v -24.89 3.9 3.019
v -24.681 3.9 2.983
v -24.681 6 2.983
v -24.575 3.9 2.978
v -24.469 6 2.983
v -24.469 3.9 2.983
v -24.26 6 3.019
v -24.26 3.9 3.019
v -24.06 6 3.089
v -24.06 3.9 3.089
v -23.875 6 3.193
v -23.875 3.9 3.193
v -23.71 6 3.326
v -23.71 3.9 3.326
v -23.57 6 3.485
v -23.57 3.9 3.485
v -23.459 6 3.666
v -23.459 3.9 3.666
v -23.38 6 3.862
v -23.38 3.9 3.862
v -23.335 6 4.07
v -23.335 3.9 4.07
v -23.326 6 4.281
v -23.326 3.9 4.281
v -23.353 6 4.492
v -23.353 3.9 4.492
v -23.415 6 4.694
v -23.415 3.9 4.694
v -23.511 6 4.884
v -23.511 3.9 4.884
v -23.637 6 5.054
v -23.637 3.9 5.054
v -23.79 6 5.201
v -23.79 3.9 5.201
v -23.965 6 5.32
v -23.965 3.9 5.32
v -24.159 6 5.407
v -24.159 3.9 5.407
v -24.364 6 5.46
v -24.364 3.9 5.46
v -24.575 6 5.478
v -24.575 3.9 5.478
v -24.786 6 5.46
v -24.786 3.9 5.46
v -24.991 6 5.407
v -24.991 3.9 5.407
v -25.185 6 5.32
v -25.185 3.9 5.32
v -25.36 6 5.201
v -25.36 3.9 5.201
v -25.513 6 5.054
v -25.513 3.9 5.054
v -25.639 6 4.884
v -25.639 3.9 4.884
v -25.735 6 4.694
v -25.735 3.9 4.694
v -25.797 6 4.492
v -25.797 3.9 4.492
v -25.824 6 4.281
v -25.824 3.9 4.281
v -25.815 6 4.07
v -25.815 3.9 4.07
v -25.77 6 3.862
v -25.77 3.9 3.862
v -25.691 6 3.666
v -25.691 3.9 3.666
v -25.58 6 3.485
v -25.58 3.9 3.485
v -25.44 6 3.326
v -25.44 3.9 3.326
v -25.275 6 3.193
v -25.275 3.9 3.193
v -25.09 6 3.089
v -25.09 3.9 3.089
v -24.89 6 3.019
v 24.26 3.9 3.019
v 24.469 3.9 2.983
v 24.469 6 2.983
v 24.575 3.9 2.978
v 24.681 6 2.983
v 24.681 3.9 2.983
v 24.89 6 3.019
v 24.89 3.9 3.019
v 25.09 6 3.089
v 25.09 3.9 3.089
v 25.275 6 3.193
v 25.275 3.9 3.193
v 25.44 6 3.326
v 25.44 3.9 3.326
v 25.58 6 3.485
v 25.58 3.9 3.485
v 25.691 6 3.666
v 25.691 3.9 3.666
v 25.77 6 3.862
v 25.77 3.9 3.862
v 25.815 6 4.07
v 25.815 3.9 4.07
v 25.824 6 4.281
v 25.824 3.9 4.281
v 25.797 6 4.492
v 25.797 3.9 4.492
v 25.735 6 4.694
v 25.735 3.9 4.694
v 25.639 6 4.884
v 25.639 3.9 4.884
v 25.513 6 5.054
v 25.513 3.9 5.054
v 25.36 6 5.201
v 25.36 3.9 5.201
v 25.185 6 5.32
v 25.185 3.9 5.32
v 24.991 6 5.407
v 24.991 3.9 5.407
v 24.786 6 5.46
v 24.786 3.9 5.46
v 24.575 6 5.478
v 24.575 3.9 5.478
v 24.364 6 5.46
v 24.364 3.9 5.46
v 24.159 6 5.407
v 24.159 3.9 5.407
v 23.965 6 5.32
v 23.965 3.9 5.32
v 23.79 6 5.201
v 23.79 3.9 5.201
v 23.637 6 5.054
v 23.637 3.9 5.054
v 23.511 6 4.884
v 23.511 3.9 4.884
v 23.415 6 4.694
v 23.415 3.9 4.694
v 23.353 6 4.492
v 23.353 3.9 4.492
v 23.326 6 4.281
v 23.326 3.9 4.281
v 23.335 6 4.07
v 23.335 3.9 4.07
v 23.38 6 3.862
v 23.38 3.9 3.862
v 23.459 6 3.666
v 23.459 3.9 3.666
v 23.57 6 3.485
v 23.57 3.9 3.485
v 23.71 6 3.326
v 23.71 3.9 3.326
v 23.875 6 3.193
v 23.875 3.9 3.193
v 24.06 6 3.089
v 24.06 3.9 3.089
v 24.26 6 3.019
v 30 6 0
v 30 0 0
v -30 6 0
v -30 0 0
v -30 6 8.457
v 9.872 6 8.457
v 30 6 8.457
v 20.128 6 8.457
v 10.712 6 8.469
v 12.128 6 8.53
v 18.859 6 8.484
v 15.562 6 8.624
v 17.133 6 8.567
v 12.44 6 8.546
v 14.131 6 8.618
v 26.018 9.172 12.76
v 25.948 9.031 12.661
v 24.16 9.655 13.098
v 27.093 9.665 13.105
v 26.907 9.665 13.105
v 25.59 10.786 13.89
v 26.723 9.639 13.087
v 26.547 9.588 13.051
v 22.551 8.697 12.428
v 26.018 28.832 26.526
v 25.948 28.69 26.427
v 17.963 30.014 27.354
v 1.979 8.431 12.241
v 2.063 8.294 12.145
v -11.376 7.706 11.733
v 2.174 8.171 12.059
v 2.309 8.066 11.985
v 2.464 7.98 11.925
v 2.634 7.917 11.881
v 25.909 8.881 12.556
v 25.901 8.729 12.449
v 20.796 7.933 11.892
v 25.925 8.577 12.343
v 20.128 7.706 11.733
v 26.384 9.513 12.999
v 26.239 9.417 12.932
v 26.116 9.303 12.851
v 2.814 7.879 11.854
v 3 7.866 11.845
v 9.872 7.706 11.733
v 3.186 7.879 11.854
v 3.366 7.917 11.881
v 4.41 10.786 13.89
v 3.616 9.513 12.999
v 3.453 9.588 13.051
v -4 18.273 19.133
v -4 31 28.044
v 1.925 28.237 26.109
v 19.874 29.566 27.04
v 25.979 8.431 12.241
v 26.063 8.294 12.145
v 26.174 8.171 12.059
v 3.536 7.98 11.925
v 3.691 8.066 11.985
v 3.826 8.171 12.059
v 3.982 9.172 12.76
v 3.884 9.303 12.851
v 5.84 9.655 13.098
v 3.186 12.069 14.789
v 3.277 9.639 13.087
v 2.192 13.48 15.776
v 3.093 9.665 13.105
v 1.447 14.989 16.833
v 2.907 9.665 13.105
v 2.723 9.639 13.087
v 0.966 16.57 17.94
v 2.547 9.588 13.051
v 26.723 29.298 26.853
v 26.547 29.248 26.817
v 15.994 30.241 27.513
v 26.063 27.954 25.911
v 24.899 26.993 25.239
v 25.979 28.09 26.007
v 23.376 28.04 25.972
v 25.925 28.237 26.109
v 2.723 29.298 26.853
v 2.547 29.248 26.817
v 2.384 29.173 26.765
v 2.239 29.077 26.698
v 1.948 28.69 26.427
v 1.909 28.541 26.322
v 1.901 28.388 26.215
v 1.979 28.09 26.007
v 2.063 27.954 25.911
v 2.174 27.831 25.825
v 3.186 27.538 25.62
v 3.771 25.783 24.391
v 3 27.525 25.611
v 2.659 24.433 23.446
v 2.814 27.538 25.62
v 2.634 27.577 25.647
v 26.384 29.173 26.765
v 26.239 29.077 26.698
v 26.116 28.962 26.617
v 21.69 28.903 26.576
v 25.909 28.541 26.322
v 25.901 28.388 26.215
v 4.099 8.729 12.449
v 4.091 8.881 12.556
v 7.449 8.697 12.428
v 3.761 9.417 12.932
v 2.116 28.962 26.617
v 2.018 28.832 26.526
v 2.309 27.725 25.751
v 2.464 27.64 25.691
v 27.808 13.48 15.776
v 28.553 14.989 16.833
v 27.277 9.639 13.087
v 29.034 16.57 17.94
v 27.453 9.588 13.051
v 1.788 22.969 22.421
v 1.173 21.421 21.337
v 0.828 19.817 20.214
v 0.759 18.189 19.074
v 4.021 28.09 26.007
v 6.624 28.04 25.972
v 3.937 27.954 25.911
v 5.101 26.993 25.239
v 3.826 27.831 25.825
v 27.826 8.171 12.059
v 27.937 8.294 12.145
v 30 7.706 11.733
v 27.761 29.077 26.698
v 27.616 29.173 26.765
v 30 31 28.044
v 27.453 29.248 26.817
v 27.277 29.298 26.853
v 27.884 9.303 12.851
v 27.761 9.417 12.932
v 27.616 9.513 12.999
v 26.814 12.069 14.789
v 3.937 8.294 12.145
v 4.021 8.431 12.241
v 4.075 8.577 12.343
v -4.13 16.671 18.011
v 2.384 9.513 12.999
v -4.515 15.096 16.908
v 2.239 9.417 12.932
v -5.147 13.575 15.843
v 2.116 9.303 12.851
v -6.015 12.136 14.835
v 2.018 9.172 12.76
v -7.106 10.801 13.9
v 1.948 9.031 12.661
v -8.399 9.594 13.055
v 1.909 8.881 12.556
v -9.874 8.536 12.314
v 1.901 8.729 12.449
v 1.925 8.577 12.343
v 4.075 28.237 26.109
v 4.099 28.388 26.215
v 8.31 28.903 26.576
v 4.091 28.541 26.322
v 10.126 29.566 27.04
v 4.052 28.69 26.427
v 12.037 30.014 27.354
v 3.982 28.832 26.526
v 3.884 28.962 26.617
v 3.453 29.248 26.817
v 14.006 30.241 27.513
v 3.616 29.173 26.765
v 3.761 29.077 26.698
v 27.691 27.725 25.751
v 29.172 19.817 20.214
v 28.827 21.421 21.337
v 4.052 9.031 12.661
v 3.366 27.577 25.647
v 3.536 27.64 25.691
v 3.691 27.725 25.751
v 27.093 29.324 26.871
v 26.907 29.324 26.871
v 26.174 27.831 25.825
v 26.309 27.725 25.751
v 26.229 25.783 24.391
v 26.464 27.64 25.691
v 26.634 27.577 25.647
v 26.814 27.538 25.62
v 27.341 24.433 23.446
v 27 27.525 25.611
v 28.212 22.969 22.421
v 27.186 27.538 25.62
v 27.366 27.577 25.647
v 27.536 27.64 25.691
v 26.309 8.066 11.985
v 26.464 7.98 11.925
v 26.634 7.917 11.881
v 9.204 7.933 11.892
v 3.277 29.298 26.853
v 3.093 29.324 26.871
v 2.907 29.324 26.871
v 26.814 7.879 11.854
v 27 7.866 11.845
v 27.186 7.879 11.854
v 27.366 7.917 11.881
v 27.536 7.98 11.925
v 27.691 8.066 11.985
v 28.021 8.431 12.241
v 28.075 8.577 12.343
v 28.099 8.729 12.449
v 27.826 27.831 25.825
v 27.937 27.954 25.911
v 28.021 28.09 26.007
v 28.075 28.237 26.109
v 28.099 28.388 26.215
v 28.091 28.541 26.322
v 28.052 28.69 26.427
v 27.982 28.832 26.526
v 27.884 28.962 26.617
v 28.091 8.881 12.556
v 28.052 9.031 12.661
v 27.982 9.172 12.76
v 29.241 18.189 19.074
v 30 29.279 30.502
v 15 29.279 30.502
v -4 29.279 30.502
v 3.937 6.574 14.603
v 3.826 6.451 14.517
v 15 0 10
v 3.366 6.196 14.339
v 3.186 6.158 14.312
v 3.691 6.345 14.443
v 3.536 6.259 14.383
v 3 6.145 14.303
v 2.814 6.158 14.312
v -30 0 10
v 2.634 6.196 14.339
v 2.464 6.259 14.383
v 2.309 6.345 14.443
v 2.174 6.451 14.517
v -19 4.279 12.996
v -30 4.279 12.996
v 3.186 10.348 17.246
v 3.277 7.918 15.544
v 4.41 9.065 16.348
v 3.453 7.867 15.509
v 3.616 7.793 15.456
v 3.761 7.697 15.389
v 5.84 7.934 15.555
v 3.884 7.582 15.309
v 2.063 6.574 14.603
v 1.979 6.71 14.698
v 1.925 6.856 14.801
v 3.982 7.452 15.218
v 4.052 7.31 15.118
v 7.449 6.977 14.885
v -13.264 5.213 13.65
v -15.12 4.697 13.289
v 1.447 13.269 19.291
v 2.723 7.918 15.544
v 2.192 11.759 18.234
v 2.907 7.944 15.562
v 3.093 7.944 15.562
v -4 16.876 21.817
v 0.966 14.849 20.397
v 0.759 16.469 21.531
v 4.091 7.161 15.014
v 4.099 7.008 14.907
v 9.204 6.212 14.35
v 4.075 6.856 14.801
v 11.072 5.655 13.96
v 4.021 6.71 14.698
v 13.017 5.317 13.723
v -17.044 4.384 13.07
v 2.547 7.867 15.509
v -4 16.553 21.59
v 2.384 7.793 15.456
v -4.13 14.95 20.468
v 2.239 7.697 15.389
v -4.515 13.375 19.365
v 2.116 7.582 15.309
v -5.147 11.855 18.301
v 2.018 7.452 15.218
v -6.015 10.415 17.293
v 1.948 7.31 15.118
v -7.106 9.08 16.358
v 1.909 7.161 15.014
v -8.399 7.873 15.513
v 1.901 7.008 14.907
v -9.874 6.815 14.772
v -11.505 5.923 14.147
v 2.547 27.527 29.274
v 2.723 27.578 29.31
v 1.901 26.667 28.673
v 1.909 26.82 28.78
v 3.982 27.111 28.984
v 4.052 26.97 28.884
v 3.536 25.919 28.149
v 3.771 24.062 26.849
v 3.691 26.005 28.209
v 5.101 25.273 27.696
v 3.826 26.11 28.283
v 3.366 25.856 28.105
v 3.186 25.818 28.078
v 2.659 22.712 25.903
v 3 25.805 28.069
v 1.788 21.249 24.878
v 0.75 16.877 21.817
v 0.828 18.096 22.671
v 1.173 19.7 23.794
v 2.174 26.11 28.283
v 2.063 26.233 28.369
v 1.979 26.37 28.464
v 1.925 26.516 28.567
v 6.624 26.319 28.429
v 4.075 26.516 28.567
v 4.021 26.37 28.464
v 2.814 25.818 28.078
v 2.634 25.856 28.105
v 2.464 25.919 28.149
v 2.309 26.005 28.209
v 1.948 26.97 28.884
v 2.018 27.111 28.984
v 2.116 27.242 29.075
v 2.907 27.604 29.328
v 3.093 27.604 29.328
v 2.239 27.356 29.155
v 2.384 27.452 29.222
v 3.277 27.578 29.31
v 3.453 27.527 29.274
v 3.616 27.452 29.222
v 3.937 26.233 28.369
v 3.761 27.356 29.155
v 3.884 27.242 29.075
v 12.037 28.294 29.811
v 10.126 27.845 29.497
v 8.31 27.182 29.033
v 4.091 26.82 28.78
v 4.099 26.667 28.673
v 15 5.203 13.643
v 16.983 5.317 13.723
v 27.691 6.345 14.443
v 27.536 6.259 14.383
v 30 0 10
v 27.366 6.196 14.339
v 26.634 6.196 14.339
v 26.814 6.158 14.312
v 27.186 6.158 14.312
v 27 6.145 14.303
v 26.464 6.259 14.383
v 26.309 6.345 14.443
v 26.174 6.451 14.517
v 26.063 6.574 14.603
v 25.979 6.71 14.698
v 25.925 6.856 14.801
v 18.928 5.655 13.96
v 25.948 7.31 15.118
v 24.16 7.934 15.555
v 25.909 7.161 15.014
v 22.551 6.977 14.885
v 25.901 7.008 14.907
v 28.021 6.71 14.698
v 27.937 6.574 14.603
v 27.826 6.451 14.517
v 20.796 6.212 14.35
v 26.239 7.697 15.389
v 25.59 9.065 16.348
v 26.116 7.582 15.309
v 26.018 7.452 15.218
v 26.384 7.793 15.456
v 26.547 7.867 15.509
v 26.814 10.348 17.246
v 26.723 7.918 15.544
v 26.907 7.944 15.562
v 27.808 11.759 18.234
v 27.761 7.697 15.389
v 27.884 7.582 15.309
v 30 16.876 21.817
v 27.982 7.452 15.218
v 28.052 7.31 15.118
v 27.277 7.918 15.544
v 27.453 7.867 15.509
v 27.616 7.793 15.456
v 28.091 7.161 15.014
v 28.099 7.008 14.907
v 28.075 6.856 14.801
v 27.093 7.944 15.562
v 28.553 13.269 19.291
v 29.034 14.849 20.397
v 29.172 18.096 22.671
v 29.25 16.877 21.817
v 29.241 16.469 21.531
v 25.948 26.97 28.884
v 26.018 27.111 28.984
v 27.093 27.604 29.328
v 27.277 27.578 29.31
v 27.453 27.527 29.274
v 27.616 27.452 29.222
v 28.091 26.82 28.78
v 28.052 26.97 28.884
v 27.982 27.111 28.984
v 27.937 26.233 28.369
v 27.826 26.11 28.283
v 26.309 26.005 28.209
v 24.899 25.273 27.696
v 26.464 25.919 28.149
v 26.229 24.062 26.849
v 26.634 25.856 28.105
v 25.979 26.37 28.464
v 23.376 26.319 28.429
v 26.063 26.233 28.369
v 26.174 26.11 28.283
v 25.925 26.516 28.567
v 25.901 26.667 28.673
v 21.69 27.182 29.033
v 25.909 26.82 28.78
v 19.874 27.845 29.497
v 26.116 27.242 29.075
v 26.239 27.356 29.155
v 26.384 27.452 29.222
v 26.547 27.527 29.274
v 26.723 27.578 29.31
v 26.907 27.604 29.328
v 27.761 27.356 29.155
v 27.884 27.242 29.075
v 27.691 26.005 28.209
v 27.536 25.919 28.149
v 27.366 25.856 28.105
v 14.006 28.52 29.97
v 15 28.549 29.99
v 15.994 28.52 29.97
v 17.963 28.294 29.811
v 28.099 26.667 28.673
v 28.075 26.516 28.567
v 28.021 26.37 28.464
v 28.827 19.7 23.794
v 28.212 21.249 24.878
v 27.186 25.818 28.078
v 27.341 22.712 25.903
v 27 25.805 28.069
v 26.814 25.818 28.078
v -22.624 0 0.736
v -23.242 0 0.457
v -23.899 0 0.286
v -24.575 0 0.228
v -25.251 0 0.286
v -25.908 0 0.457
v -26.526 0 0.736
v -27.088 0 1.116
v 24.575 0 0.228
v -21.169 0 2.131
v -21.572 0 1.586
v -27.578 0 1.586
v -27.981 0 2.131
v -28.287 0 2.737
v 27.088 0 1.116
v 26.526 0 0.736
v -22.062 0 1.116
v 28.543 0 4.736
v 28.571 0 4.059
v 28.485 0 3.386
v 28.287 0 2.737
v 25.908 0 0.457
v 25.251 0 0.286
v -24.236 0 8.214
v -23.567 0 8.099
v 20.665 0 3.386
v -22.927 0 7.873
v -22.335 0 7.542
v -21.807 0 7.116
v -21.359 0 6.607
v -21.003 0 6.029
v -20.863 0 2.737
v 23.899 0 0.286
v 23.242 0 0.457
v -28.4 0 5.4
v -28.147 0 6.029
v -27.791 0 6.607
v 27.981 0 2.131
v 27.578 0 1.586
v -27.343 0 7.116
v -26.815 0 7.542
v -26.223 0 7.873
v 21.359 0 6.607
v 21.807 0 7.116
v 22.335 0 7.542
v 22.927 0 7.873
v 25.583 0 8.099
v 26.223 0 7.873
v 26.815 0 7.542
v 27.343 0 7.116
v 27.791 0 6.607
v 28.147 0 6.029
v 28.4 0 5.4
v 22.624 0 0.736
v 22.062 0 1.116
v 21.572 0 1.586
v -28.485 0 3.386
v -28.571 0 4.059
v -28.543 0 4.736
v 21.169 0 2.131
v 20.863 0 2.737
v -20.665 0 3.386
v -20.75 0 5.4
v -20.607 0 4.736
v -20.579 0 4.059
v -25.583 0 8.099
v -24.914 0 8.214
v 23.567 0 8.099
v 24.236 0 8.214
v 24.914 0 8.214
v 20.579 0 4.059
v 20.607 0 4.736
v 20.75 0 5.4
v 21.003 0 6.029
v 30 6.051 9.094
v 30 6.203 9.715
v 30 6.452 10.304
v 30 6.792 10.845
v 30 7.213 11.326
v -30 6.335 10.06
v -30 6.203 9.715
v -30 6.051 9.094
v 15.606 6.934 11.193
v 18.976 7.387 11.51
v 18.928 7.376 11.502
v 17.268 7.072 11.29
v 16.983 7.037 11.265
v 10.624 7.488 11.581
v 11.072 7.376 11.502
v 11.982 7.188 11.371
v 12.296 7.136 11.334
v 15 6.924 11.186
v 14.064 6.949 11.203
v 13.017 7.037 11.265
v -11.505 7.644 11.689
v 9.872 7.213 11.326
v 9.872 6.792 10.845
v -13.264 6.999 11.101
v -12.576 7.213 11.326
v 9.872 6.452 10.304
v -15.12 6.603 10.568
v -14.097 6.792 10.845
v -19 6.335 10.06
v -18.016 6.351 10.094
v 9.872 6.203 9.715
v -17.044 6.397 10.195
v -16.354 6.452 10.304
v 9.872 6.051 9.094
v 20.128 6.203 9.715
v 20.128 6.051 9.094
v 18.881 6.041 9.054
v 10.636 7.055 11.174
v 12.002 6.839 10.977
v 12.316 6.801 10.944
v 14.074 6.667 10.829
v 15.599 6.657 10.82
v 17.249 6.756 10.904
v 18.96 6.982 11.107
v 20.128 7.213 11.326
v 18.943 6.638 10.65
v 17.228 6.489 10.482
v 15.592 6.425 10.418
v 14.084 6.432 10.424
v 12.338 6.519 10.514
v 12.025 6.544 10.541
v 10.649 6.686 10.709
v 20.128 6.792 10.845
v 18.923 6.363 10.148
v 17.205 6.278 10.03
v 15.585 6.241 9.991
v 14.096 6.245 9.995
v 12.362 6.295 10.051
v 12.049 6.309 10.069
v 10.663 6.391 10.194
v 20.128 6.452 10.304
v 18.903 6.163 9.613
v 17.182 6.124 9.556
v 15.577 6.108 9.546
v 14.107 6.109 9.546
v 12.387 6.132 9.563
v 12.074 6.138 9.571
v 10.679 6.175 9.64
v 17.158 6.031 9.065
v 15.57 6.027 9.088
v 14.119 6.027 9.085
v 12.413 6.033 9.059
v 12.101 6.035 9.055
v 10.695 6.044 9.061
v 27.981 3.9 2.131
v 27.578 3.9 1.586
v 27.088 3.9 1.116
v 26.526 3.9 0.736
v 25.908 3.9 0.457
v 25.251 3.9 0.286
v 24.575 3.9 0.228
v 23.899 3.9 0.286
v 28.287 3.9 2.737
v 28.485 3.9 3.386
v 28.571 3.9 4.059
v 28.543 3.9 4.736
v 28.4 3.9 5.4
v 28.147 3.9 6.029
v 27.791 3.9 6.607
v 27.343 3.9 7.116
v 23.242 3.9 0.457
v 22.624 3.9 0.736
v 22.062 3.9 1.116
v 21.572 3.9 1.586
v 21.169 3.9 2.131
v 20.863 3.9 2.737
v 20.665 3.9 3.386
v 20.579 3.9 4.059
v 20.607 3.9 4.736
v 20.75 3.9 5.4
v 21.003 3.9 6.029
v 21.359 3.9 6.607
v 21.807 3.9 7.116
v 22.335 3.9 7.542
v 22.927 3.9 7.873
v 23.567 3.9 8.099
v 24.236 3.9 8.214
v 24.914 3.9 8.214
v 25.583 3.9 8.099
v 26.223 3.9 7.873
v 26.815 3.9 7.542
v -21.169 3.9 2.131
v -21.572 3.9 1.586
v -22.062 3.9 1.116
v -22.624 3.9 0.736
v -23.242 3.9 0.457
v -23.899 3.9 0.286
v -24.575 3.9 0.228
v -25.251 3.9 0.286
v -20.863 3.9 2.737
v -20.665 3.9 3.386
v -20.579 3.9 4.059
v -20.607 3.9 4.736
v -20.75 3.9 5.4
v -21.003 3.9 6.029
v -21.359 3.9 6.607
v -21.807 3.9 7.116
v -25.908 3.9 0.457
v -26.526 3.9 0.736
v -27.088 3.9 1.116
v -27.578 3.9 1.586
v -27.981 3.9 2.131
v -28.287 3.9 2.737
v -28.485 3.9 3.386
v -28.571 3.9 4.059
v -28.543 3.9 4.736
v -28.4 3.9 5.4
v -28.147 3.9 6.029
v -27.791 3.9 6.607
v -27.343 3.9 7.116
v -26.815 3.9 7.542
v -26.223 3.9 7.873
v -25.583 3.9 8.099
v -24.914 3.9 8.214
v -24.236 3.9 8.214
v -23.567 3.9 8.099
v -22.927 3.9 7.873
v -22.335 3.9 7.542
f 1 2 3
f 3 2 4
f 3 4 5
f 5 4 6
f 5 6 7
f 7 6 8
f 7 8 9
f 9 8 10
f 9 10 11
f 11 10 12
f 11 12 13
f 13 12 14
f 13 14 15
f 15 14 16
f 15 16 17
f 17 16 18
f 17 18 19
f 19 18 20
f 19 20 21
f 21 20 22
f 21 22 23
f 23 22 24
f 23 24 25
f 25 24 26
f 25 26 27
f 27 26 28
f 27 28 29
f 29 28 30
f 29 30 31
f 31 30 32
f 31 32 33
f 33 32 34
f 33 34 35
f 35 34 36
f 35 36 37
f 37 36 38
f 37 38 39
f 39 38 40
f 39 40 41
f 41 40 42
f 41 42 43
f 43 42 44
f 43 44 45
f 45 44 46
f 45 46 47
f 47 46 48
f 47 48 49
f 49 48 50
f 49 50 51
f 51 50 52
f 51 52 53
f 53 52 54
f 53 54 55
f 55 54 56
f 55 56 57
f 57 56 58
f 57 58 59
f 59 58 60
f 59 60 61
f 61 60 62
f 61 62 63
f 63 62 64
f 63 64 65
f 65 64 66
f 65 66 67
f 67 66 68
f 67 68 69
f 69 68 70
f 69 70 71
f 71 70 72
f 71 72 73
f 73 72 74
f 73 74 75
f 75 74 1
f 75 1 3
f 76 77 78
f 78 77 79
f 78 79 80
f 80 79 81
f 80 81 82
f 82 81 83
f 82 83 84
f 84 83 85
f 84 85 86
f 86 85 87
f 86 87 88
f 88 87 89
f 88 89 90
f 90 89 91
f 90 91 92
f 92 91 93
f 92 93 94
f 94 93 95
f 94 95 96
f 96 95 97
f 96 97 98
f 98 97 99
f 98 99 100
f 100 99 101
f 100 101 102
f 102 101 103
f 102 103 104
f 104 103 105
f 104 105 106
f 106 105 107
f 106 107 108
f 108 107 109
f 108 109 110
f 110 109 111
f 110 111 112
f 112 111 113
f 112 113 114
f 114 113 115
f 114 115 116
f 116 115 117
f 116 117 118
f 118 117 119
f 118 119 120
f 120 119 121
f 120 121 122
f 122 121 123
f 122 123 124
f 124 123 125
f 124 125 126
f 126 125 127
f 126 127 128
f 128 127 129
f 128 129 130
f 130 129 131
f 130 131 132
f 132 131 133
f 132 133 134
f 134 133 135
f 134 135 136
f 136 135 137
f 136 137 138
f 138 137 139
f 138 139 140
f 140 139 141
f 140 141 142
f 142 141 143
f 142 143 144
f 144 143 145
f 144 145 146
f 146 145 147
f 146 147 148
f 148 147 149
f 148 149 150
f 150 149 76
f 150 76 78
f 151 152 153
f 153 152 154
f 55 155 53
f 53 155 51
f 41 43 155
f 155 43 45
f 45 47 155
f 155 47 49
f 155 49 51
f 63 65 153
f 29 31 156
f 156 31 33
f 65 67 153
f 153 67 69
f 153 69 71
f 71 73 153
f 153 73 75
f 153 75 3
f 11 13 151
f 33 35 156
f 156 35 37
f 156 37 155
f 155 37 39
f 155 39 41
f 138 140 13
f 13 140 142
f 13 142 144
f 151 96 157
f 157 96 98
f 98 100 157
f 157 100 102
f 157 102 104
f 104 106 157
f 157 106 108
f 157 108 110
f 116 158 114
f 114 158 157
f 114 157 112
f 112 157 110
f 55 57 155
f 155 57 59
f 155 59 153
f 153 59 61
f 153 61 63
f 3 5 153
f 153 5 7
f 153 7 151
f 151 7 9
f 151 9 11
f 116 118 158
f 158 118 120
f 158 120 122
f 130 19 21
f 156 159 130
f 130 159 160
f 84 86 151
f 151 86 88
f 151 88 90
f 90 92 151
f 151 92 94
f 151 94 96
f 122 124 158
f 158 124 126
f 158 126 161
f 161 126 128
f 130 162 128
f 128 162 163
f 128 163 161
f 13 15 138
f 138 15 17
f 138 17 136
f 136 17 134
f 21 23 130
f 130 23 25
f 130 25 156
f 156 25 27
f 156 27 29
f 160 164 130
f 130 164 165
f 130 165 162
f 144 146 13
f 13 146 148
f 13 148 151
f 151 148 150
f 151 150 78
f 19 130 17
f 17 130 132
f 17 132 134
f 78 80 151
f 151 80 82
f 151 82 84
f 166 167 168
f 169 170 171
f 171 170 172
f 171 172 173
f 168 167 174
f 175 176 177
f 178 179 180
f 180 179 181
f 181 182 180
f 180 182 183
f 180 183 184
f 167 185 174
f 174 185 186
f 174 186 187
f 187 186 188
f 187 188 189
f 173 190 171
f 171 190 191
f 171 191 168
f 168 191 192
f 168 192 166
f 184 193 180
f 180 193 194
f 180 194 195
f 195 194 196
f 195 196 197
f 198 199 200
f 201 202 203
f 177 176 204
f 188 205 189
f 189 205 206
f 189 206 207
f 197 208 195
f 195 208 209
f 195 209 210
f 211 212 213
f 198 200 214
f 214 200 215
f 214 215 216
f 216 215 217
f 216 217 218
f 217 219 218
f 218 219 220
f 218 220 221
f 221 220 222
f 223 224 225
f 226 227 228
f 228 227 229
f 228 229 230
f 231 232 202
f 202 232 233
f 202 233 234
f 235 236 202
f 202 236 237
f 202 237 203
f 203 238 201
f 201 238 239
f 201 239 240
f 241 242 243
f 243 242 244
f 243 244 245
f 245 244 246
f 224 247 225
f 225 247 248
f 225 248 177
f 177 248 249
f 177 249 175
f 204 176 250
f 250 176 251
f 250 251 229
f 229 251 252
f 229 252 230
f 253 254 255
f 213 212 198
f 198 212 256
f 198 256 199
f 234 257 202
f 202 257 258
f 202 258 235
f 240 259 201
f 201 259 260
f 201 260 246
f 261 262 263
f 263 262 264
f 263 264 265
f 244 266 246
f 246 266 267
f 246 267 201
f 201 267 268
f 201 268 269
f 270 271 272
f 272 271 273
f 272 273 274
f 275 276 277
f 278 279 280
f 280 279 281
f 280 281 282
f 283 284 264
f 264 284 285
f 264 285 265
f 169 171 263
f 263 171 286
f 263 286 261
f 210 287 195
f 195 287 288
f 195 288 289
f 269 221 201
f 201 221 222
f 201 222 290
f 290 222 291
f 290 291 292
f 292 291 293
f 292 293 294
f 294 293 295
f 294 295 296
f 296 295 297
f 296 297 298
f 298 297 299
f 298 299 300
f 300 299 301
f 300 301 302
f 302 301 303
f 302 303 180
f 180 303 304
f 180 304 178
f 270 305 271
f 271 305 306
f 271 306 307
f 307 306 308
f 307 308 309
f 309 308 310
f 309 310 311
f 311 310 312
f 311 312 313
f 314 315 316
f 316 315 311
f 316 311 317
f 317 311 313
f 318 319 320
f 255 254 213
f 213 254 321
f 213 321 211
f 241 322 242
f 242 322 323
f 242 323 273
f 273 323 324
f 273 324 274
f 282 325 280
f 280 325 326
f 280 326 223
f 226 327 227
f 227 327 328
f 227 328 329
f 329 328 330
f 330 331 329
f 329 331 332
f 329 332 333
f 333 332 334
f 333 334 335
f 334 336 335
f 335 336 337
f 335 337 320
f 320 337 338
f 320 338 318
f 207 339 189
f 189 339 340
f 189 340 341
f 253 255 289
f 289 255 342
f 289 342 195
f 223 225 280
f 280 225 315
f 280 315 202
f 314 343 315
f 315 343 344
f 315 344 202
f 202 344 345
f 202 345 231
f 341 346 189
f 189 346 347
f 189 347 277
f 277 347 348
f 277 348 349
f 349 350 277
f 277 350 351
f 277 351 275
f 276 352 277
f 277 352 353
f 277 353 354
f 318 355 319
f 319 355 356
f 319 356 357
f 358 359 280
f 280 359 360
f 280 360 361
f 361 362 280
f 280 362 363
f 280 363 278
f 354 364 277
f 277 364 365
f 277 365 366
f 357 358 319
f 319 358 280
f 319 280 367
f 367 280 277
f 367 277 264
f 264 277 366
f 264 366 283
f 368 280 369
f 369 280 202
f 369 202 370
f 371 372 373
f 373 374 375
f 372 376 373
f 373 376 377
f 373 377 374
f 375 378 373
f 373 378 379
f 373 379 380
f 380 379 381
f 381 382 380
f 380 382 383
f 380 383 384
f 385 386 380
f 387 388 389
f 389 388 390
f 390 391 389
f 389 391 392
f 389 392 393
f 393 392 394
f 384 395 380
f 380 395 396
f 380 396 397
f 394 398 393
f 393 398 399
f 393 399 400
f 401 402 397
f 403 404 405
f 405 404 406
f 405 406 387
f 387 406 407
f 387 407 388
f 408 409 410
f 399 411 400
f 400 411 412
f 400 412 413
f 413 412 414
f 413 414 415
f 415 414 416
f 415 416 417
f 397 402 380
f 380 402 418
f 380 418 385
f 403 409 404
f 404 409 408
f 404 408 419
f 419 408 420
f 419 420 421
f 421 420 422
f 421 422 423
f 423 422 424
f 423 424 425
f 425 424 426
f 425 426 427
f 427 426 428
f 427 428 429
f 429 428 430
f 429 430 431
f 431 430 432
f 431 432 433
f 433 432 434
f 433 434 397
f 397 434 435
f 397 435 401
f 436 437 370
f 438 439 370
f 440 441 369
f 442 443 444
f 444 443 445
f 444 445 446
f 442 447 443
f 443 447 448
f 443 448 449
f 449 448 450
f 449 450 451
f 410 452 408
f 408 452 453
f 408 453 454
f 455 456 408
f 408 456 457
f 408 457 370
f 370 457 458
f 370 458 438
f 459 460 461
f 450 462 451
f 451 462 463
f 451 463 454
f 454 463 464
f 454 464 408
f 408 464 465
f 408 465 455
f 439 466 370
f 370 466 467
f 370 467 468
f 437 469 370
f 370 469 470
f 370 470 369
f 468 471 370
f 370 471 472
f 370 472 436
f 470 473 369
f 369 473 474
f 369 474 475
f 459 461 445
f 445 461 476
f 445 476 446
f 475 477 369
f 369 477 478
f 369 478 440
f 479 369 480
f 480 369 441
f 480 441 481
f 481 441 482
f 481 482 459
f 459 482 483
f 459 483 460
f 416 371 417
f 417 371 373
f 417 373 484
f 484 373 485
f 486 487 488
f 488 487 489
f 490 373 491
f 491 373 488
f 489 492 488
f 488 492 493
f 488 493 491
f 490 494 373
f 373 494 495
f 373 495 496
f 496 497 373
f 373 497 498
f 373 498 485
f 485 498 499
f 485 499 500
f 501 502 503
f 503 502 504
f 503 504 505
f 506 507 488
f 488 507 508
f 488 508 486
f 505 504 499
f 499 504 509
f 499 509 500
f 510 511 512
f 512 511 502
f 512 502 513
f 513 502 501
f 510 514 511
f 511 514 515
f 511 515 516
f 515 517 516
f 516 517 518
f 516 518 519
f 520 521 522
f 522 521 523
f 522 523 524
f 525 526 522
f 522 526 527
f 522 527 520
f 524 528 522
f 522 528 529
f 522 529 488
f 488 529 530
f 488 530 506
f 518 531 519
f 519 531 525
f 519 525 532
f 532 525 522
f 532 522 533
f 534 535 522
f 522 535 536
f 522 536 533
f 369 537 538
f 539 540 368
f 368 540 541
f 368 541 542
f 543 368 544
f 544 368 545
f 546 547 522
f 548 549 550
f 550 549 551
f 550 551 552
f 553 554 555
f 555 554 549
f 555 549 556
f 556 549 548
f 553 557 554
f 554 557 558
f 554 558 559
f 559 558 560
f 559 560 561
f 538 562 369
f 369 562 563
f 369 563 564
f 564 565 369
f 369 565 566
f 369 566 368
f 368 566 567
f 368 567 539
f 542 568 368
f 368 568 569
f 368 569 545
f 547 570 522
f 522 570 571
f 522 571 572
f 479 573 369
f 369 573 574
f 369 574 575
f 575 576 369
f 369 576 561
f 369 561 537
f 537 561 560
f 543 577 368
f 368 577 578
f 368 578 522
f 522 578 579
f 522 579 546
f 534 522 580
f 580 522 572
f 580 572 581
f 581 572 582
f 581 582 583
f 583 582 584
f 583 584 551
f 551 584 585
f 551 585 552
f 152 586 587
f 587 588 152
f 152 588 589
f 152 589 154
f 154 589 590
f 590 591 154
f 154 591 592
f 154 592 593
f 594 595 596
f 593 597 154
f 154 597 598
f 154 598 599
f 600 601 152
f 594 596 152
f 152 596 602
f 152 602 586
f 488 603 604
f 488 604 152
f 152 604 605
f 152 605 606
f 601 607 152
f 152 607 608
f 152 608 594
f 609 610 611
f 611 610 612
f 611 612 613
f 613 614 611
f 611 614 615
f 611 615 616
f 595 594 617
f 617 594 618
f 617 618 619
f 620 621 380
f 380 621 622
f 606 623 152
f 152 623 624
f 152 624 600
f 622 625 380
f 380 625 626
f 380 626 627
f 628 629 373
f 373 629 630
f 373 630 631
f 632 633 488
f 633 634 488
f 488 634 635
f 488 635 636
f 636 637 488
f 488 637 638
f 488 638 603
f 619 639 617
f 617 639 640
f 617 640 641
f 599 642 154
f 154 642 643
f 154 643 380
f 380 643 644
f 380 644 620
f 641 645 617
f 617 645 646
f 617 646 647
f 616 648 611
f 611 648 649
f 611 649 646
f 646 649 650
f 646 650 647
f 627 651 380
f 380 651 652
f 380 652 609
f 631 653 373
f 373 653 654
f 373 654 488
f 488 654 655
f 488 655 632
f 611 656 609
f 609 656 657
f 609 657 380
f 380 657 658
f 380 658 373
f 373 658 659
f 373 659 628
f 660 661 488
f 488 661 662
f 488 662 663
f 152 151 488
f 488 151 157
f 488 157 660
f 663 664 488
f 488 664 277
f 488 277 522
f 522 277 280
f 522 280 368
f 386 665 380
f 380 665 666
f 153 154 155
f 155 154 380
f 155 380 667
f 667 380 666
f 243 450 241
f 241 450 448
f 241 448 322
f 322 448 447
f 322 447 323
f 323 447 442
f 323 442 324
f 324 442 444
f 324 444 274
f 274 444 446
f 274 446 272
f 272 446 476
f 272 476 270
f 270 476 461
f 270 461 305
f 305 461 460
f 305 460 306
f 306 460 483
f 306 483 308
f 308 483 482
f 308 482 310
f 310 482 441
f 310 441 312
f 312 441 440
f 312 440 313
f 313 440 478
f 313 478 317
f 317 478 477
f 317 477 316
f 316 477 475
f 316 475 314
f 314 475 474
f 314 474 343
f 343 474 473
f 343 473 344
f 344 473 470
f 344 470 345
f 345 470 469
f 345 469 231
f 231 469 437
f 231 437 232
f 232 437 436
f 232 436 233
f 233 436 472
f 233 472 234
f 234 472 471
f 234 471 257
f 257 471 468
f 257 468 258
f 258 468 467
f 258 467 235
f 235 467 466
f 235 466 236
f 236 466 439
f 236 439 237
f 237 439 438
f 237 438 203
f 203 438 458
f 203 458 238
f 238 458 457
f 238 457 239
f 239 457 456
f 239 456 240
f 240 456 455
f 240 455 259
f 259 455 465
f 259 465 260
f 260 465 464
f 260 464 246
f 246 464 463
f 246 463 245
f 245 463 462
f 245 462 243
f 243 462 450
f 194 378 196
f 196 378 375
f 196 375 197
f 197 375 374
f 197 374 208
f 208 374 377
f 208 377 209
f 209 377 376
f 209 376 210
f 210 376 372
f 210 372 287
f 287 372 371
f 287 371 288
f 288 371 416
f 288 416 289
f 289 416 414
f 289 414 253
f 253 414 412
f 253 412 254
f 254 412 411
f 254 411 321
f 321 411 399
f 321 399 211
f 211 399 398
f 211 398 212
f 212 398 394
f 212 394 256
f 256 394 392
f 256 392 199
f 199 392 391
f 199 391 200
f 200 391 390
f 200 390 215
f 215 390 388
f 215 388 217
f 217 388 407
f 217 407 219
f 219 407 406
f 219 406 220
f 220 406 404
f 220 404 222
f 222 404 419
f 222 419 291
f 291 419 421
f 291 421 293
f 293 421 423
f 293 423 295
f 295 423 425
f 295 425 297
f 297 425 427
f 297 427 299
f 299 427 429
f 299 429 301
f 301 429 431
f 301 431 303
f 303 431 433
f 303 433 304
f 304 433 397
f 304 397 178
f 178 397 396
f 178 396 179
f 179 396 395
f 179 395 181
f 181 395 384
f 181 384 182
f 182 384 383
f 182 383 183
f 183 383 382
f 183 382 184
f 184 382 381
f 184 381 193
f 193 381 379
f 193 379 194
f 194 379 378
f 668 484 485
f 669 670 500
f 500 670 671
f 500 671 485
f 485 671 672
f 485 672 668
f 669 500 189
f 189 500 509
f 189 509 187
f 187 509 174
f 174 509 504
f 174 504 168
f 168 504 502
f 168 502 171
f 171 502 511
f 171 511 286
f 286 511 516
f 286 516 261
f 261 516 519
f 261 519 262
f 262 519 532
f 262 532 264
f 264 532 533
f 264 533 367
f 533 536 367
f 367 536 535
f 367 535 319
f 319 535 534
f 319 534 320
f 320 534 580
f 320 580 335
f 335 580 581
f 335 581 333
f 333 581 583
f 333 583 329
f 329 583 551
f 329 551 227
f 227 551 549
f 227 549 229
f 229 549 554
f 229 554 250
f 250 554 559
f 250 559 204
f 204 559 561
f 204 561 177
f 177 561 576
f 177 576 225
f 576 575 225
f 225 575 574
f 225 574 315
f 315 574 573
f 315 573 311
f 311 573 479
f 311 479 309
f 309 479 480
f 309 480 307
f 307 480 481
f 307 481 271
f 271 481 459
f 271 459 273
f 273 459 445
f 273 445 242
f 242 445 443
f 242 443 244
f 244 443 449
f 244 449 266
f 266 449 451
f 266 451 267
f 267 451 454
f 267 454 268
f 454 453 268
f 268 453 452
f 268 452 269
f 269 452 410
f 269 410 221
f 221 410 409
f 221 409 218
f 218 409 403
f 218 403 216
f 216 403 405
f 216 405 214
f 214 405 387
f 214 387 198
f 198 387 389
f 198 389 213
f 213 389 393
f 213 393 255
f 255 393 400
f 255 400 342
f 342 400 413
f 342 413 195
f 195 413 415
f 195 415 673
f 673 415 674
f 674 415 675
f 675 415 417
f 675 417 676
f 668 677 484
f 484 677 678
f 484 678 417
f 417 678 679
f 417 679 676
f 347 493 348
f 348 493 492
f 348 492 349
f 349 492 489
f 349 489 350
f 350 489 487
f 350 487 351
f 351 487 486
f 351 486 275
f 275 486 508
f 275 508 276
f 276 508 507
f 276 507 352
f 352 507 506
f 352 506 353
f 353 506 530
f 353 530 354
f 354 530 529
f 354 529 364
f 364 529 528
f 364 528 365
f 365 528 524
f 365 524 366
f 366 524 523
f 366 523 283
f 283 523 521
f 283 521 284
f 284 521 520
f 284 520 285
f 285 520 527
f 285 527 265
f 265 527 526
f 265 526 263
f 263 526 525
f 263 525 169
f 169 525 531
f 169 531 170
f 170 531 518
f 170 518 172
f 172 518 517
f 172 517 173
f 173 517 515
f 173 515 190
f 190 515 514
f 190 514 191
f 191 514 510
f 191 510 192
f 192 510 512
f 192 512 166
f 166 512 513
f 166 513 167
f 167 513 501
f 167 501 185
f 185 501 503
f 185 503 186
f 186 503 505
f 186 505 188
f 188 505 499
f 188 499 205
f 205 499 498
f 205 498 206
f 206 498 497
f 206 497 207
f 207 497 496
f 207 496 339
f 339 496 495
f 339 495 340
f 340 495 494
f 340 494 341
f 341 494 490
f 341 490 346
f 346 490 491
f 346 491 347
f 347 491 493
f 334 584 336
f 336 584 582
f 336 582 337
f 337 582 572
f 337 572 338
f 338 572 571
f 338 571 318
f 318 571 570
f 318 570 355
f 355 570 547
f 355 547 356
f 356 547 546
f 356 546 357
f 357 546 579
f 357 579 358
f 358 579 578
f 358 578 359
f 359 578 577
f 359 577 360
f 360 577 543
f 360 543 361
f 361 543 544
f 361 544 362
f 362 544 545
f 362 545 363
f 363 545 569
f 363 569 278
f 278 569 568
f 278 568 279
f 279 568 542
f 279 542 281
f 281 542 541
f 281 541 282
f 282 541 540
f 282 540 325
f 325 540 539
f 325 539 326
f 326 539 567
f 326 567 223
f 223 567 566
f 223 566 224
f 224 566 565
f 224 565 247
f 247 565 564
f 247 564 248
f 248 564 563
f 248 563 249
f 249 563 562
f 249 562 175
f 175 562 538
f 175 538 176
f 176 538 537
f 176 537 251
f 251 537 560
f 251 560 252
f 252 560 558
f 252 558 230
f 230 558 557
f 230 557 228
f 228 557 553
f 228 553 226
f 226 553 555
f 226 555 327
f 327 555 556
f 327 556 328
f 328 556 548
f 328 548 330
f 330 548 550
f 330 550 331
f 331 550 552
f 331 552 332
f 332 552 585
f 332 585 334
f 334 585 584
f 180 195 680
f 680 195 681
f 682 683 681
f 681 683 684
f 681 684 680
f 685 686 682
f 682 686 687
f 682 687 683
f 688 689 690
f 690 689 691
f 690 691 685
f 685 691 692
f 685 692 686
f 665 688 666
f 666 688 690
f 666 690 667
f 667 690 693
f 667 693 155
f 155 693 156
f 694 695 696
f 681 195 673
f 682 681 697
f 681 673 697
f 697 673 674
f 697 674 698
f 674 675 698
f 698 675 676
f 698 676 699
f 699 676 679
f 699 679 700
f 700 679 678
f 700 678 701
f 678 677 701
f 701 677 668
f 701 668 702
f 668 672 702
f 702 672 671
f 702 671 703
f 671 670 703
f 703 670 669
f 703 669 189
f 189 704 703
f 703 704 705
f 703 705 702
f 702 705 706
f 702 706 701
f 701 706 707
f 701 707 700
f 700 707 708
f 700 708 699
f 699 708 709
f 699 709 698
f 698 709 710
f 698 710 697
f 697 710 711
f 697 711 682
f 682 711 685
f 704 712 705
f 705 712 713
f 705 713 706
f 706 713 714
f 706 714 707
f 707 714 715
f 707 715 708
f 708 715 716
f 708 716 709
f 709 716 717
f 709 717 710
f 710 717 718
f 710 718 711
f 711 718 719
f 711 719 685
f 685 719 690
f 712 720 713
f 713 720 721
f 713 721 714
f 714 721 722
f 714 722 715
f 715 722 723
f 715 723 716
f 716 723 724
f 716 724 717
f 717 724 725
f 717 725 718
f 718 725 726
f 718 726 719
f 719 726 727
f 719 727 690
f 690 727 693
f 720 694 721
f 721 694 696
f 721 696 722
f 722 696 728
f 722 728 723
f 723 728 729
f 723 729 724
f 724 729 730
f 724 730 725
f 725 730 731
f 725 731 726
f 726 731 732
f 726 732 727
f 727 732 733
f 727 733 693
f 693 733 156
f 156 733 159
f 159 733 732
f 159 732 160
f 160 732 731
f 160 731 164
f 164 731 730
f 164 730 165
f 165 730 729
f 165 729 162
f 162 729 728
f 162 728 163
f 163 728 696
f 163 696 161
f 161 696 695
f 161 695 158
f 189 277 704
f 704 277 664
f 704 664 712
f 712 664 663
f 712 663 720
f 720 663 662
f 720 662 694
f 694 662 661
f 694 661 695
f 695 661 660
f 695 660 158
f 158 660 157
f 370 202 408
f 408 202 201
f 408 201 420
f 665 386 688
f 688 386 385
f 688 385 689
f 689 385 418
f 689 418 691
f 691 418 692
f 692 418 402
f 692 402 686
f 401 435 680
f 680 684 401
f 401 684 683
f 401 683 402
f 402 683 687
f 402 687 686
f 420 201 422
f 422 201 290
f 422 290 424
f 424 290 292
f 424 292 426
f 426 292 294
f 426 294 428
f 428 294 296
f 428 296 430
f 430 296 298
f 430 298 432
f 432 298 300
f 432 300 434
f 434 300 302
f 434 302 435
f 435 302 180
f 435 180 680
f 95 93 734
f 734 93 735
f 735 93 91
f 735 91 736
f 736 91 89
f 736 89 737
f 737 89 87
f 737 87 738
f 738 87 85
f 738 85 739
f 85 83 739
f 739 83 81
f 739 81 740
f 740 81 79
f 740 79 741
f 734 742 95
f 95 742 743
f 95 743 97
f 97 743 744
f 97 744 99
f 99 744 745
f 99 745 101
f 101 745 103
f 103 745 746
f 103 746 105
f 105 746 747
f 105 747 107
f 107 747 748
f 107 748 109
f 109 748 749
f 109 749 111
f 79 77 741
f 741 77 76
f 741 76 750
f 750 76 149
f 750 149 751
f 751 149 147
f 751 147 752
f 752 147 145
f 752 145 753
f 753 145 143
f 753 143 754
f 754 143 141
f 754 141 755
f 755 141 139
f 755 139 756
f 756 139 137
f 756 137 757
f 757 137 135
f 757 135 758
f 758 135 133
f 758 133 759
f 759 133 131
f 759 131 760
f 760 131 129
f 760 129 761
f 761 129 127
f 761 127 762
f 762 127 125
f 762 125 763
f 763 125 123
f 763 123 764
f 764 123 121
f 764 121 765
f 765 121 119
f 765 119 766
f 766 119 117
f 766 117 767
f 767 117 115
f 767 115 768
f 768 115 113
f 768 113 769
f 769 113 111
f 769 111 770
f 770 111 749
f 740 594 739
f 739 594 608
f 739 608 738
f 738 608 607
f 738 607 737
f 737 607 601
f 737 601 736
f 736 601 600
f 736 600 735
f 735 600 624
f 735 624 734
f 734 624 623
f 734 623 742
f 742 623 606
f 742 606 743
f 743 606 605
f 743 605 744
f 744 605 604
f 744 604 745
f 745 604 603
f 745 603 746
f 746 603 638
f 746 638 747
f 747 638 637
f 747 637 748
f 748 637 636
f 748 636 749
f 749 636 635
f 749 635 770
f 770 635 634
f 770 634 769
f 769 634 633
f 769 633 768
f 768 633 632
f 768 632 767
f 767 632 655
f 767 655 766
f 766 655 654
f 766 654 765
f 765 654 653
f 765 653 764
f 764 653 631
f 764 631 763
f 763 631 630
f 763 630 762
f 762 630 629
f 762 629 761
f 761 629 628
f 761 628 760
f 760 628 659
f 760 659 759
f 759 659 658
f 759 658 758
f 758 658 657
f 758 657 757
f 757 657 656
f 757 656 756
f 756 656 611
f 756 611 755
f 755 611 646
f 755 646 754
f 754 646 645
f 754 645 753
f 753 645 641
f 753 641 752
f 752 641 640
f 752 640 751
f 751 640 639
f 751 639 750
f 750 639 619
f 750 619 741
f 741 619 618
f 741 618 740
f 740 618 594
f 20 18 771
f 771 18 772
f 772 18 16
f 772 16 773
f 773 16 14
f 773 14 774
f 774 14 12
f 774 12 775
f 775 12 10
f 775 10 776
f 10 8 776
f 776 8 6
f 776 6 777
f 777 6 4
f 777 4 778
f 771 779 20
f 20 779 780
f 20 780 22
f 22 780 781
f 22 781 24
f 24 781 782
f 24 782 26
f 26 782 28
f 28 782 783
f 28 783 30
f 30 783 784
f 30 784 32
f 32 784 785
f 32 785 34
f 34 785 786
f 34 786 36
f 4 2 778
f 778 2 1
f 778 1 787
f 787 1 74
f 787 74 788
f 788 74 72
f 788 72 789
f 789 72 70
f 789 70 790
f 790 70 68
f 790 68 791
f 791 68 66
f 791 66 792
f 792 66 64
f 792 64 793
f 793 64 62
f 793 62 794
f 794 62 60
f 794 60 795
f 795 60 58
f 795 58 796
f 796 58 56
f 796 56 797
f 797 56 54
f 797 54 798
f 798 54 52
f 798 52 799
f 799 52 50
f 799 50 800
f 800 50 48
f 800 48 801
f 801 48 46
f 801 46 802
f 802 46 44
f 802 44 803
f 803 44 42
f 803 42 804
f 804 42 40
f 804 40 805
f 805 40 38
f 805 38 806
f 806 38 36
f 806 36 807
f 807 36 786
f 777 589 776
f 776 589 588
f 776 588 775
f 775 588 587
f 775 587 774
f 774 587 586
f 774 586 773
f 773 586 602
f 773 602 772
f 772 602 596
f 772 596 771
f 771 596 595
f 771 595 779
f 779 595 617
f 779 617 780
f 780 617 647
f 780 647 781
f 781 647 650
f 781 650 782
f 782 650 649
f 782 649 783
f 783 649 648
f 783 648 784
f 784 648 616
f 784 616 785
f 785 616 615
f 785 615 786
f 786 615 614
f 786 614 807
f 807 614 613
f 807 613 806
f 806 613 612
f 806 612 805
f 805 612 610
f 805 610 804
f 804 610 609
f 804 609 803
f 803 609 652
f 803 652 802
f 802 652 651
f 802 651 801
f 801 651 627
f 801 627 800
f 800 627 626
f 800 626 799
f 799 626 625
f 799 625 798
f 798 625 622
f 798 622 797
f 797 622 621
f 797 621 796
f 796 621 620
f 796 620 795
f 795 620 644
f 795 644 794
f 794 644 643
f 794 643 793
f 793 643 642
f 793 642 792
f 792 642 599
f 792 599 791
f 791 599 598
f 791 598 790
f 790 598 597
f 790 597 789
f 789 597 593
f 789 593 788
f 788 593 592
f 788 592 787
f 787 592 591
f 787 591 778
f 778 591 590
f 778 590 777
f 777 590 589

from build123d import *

# Parameters (mm, degrees)
BOSS_EXTRUDE1_DEPTH = 30
SKETCH3_R           = 1.1
SKETCH3_R_2         = 14.25
CUT_EXTRUDE1_DEPTH  = 53.348964562
FILLET2_R           = 4
CUT_EXTRUDE2_DEPTH  = 53.378356962
SKETCH5_R           = 1.25
CUT_EXTRUDE3_DEPTH  = 50.551443345
SKETCH6_R           = 4
CUT_EXTRUDE4_DEPTH  = 3.9
CUT_EXTRUDE5_START  = -5.191520443
CUT_EXTRUDE5_DEPTH  = 0.58471683


# Read off the part's stored shape, not the designer's step: Cut-Extrude5
with BuildPart() as part:
    # Sketch1 → Boss-Extrude1 (new, symmetric)
    with BuildSketch(Plane(origin=(0, 0, 0), x_dir=(0, 0, -1), z_dir=(1, 0, 0))):
        Polygon((0, 0), (-10, 0), (-30.501566051, 29.279270691), (-28.044109918, 31), (-10.538921463, 6), (0, 6), align=None)
    extrude(amount=BOSS_EXTRUDE1_DEPTH, both=True)

    # Sketch3 → Cut-Extrude1 (cut, through all)
    with BuildSketch(Plane(origin=(0, -4.698463104, 6.710100717), x_dir=(1, 0, 0), z_dir=(0, -0.5735764363510448, 0.8191520442889928))):
        with Locations(Location((3, 38.337424669, 0), (0, 0, 270))):
            Circle(SKETCH3_R)
        with Locations(Location((27, 38.337424669, 0), (0, 0, 270))):
            Circle(SKETCH3_R)
        with Locations(Location((27, 14.337424669, 0), (0, 0, 270))):
            Circle(SKETCH3_R)
        with Locations(Location((3, 14.337424669, 0), (0, 0, 270))):
            Circle(SKETCH3_R)
        with Locations(Location((15, 26.337424669, 0), (0, 0, 270))):
            Circle(SKETCH3_R_2)
    extrude(amount=-CUT_EXTRUDE1_DEPTH, mode=Mode.SUBTRACT)

    # Fillet2
    fillet2_edges = [part.edges().sort_by_distance(p)[0] for p in [
        (0, 6, 10.538921463),
    ]]
    fillet(fillet2_edges, radius=FILLET2_R)

    # Sketch4 → Cut-Extrude2 (cut, through all)
    with BuildSketch(Plane(origin=(0, -2.977733795, 4.252644584), x_dir=(-1, 0, 0), z_dir=(0, 0.5735764363510438, -0.8191520442889935))):
        with BuildLine():
            Line((4, 41.479154), (4, 25.942790865))
            ThreePointArc((4, 25.942790865), (8.399400202, 15.347179418), (18.999990368, 10.959789281))
            Line((18.999990368, 10.959789281), (30, 10.959789281))
            Line((30, 10.959789281), (30, 41.479154))
            Line((30, 41.479154), (4, 41.479154))
        make_face()
    extrude(amount=-CUT_EXTRUDE2_DEPTH, mode=Mode.SUBTRACT)

    # Sketch5 → Cut-Extrude3 (cut, through all)
    with BuildSketch(Plane(origin=(0, 6, 0), x_dir=(1, 0, 0), z_dir=(0, 1, 0))):
        with Locations(Location((-24.575, -4.22832663, 0), (0, 0, 270))):
            Circle(SKETCH5_R)
        with Locations(Location((24.575, -4.22832663, 0), (0, 0, 270))):
            Circle(SKETCH5_R)
    extrude(amount=-CUT_EXTRUDE3_DEPTH, mode=Mode.SUBTRACT)

    # Sketch6 → Cut-Extrude4 (cut)
    with BuildSketch(Plane.XZ):
        with Locations(Location((-24.575, 4.22832663, 0), (0, 0, 270))):
            Circle(SKETCH6_R)
        with Locations(Location((24.575, 4.22832663, 0), (0, 0, 270))):
            Circle(SKETCH6_R)
    extrude(amount=-CUT_EXTRUDE4_DEPTH, mode=Mode.SUBTRACT)

    # Cut-Extrude5 outline → Cut-Extrude5 (cut)
    with BuildSketch(Plane(origin=(0, 0, 0), x_dir=(1, 0, 0), z_dir=(0, 0.5735764363510437, -0.8191520442889935)).offset(CUT_EXTRUDE5_START)):
        with BuildLine():
            ThreePointArc((-10, -13.959782058), (-14.256579589, -11.729537907), (-18.999990368, -10.959789281))
            Line((-18.999990368, -10.959789281), (-31, -10.959789281))
            Line((-31, -10.959789281), (-31, -15))
            Line((-31, -15), (-10, -15))
            Line((-10, -15), (-10, -13.959782058))
        make_face()
    extrude(amount=CUT_EXTRUDE5_DEPTH, mode=Mode.SUBTRACT)


solid = part.part
